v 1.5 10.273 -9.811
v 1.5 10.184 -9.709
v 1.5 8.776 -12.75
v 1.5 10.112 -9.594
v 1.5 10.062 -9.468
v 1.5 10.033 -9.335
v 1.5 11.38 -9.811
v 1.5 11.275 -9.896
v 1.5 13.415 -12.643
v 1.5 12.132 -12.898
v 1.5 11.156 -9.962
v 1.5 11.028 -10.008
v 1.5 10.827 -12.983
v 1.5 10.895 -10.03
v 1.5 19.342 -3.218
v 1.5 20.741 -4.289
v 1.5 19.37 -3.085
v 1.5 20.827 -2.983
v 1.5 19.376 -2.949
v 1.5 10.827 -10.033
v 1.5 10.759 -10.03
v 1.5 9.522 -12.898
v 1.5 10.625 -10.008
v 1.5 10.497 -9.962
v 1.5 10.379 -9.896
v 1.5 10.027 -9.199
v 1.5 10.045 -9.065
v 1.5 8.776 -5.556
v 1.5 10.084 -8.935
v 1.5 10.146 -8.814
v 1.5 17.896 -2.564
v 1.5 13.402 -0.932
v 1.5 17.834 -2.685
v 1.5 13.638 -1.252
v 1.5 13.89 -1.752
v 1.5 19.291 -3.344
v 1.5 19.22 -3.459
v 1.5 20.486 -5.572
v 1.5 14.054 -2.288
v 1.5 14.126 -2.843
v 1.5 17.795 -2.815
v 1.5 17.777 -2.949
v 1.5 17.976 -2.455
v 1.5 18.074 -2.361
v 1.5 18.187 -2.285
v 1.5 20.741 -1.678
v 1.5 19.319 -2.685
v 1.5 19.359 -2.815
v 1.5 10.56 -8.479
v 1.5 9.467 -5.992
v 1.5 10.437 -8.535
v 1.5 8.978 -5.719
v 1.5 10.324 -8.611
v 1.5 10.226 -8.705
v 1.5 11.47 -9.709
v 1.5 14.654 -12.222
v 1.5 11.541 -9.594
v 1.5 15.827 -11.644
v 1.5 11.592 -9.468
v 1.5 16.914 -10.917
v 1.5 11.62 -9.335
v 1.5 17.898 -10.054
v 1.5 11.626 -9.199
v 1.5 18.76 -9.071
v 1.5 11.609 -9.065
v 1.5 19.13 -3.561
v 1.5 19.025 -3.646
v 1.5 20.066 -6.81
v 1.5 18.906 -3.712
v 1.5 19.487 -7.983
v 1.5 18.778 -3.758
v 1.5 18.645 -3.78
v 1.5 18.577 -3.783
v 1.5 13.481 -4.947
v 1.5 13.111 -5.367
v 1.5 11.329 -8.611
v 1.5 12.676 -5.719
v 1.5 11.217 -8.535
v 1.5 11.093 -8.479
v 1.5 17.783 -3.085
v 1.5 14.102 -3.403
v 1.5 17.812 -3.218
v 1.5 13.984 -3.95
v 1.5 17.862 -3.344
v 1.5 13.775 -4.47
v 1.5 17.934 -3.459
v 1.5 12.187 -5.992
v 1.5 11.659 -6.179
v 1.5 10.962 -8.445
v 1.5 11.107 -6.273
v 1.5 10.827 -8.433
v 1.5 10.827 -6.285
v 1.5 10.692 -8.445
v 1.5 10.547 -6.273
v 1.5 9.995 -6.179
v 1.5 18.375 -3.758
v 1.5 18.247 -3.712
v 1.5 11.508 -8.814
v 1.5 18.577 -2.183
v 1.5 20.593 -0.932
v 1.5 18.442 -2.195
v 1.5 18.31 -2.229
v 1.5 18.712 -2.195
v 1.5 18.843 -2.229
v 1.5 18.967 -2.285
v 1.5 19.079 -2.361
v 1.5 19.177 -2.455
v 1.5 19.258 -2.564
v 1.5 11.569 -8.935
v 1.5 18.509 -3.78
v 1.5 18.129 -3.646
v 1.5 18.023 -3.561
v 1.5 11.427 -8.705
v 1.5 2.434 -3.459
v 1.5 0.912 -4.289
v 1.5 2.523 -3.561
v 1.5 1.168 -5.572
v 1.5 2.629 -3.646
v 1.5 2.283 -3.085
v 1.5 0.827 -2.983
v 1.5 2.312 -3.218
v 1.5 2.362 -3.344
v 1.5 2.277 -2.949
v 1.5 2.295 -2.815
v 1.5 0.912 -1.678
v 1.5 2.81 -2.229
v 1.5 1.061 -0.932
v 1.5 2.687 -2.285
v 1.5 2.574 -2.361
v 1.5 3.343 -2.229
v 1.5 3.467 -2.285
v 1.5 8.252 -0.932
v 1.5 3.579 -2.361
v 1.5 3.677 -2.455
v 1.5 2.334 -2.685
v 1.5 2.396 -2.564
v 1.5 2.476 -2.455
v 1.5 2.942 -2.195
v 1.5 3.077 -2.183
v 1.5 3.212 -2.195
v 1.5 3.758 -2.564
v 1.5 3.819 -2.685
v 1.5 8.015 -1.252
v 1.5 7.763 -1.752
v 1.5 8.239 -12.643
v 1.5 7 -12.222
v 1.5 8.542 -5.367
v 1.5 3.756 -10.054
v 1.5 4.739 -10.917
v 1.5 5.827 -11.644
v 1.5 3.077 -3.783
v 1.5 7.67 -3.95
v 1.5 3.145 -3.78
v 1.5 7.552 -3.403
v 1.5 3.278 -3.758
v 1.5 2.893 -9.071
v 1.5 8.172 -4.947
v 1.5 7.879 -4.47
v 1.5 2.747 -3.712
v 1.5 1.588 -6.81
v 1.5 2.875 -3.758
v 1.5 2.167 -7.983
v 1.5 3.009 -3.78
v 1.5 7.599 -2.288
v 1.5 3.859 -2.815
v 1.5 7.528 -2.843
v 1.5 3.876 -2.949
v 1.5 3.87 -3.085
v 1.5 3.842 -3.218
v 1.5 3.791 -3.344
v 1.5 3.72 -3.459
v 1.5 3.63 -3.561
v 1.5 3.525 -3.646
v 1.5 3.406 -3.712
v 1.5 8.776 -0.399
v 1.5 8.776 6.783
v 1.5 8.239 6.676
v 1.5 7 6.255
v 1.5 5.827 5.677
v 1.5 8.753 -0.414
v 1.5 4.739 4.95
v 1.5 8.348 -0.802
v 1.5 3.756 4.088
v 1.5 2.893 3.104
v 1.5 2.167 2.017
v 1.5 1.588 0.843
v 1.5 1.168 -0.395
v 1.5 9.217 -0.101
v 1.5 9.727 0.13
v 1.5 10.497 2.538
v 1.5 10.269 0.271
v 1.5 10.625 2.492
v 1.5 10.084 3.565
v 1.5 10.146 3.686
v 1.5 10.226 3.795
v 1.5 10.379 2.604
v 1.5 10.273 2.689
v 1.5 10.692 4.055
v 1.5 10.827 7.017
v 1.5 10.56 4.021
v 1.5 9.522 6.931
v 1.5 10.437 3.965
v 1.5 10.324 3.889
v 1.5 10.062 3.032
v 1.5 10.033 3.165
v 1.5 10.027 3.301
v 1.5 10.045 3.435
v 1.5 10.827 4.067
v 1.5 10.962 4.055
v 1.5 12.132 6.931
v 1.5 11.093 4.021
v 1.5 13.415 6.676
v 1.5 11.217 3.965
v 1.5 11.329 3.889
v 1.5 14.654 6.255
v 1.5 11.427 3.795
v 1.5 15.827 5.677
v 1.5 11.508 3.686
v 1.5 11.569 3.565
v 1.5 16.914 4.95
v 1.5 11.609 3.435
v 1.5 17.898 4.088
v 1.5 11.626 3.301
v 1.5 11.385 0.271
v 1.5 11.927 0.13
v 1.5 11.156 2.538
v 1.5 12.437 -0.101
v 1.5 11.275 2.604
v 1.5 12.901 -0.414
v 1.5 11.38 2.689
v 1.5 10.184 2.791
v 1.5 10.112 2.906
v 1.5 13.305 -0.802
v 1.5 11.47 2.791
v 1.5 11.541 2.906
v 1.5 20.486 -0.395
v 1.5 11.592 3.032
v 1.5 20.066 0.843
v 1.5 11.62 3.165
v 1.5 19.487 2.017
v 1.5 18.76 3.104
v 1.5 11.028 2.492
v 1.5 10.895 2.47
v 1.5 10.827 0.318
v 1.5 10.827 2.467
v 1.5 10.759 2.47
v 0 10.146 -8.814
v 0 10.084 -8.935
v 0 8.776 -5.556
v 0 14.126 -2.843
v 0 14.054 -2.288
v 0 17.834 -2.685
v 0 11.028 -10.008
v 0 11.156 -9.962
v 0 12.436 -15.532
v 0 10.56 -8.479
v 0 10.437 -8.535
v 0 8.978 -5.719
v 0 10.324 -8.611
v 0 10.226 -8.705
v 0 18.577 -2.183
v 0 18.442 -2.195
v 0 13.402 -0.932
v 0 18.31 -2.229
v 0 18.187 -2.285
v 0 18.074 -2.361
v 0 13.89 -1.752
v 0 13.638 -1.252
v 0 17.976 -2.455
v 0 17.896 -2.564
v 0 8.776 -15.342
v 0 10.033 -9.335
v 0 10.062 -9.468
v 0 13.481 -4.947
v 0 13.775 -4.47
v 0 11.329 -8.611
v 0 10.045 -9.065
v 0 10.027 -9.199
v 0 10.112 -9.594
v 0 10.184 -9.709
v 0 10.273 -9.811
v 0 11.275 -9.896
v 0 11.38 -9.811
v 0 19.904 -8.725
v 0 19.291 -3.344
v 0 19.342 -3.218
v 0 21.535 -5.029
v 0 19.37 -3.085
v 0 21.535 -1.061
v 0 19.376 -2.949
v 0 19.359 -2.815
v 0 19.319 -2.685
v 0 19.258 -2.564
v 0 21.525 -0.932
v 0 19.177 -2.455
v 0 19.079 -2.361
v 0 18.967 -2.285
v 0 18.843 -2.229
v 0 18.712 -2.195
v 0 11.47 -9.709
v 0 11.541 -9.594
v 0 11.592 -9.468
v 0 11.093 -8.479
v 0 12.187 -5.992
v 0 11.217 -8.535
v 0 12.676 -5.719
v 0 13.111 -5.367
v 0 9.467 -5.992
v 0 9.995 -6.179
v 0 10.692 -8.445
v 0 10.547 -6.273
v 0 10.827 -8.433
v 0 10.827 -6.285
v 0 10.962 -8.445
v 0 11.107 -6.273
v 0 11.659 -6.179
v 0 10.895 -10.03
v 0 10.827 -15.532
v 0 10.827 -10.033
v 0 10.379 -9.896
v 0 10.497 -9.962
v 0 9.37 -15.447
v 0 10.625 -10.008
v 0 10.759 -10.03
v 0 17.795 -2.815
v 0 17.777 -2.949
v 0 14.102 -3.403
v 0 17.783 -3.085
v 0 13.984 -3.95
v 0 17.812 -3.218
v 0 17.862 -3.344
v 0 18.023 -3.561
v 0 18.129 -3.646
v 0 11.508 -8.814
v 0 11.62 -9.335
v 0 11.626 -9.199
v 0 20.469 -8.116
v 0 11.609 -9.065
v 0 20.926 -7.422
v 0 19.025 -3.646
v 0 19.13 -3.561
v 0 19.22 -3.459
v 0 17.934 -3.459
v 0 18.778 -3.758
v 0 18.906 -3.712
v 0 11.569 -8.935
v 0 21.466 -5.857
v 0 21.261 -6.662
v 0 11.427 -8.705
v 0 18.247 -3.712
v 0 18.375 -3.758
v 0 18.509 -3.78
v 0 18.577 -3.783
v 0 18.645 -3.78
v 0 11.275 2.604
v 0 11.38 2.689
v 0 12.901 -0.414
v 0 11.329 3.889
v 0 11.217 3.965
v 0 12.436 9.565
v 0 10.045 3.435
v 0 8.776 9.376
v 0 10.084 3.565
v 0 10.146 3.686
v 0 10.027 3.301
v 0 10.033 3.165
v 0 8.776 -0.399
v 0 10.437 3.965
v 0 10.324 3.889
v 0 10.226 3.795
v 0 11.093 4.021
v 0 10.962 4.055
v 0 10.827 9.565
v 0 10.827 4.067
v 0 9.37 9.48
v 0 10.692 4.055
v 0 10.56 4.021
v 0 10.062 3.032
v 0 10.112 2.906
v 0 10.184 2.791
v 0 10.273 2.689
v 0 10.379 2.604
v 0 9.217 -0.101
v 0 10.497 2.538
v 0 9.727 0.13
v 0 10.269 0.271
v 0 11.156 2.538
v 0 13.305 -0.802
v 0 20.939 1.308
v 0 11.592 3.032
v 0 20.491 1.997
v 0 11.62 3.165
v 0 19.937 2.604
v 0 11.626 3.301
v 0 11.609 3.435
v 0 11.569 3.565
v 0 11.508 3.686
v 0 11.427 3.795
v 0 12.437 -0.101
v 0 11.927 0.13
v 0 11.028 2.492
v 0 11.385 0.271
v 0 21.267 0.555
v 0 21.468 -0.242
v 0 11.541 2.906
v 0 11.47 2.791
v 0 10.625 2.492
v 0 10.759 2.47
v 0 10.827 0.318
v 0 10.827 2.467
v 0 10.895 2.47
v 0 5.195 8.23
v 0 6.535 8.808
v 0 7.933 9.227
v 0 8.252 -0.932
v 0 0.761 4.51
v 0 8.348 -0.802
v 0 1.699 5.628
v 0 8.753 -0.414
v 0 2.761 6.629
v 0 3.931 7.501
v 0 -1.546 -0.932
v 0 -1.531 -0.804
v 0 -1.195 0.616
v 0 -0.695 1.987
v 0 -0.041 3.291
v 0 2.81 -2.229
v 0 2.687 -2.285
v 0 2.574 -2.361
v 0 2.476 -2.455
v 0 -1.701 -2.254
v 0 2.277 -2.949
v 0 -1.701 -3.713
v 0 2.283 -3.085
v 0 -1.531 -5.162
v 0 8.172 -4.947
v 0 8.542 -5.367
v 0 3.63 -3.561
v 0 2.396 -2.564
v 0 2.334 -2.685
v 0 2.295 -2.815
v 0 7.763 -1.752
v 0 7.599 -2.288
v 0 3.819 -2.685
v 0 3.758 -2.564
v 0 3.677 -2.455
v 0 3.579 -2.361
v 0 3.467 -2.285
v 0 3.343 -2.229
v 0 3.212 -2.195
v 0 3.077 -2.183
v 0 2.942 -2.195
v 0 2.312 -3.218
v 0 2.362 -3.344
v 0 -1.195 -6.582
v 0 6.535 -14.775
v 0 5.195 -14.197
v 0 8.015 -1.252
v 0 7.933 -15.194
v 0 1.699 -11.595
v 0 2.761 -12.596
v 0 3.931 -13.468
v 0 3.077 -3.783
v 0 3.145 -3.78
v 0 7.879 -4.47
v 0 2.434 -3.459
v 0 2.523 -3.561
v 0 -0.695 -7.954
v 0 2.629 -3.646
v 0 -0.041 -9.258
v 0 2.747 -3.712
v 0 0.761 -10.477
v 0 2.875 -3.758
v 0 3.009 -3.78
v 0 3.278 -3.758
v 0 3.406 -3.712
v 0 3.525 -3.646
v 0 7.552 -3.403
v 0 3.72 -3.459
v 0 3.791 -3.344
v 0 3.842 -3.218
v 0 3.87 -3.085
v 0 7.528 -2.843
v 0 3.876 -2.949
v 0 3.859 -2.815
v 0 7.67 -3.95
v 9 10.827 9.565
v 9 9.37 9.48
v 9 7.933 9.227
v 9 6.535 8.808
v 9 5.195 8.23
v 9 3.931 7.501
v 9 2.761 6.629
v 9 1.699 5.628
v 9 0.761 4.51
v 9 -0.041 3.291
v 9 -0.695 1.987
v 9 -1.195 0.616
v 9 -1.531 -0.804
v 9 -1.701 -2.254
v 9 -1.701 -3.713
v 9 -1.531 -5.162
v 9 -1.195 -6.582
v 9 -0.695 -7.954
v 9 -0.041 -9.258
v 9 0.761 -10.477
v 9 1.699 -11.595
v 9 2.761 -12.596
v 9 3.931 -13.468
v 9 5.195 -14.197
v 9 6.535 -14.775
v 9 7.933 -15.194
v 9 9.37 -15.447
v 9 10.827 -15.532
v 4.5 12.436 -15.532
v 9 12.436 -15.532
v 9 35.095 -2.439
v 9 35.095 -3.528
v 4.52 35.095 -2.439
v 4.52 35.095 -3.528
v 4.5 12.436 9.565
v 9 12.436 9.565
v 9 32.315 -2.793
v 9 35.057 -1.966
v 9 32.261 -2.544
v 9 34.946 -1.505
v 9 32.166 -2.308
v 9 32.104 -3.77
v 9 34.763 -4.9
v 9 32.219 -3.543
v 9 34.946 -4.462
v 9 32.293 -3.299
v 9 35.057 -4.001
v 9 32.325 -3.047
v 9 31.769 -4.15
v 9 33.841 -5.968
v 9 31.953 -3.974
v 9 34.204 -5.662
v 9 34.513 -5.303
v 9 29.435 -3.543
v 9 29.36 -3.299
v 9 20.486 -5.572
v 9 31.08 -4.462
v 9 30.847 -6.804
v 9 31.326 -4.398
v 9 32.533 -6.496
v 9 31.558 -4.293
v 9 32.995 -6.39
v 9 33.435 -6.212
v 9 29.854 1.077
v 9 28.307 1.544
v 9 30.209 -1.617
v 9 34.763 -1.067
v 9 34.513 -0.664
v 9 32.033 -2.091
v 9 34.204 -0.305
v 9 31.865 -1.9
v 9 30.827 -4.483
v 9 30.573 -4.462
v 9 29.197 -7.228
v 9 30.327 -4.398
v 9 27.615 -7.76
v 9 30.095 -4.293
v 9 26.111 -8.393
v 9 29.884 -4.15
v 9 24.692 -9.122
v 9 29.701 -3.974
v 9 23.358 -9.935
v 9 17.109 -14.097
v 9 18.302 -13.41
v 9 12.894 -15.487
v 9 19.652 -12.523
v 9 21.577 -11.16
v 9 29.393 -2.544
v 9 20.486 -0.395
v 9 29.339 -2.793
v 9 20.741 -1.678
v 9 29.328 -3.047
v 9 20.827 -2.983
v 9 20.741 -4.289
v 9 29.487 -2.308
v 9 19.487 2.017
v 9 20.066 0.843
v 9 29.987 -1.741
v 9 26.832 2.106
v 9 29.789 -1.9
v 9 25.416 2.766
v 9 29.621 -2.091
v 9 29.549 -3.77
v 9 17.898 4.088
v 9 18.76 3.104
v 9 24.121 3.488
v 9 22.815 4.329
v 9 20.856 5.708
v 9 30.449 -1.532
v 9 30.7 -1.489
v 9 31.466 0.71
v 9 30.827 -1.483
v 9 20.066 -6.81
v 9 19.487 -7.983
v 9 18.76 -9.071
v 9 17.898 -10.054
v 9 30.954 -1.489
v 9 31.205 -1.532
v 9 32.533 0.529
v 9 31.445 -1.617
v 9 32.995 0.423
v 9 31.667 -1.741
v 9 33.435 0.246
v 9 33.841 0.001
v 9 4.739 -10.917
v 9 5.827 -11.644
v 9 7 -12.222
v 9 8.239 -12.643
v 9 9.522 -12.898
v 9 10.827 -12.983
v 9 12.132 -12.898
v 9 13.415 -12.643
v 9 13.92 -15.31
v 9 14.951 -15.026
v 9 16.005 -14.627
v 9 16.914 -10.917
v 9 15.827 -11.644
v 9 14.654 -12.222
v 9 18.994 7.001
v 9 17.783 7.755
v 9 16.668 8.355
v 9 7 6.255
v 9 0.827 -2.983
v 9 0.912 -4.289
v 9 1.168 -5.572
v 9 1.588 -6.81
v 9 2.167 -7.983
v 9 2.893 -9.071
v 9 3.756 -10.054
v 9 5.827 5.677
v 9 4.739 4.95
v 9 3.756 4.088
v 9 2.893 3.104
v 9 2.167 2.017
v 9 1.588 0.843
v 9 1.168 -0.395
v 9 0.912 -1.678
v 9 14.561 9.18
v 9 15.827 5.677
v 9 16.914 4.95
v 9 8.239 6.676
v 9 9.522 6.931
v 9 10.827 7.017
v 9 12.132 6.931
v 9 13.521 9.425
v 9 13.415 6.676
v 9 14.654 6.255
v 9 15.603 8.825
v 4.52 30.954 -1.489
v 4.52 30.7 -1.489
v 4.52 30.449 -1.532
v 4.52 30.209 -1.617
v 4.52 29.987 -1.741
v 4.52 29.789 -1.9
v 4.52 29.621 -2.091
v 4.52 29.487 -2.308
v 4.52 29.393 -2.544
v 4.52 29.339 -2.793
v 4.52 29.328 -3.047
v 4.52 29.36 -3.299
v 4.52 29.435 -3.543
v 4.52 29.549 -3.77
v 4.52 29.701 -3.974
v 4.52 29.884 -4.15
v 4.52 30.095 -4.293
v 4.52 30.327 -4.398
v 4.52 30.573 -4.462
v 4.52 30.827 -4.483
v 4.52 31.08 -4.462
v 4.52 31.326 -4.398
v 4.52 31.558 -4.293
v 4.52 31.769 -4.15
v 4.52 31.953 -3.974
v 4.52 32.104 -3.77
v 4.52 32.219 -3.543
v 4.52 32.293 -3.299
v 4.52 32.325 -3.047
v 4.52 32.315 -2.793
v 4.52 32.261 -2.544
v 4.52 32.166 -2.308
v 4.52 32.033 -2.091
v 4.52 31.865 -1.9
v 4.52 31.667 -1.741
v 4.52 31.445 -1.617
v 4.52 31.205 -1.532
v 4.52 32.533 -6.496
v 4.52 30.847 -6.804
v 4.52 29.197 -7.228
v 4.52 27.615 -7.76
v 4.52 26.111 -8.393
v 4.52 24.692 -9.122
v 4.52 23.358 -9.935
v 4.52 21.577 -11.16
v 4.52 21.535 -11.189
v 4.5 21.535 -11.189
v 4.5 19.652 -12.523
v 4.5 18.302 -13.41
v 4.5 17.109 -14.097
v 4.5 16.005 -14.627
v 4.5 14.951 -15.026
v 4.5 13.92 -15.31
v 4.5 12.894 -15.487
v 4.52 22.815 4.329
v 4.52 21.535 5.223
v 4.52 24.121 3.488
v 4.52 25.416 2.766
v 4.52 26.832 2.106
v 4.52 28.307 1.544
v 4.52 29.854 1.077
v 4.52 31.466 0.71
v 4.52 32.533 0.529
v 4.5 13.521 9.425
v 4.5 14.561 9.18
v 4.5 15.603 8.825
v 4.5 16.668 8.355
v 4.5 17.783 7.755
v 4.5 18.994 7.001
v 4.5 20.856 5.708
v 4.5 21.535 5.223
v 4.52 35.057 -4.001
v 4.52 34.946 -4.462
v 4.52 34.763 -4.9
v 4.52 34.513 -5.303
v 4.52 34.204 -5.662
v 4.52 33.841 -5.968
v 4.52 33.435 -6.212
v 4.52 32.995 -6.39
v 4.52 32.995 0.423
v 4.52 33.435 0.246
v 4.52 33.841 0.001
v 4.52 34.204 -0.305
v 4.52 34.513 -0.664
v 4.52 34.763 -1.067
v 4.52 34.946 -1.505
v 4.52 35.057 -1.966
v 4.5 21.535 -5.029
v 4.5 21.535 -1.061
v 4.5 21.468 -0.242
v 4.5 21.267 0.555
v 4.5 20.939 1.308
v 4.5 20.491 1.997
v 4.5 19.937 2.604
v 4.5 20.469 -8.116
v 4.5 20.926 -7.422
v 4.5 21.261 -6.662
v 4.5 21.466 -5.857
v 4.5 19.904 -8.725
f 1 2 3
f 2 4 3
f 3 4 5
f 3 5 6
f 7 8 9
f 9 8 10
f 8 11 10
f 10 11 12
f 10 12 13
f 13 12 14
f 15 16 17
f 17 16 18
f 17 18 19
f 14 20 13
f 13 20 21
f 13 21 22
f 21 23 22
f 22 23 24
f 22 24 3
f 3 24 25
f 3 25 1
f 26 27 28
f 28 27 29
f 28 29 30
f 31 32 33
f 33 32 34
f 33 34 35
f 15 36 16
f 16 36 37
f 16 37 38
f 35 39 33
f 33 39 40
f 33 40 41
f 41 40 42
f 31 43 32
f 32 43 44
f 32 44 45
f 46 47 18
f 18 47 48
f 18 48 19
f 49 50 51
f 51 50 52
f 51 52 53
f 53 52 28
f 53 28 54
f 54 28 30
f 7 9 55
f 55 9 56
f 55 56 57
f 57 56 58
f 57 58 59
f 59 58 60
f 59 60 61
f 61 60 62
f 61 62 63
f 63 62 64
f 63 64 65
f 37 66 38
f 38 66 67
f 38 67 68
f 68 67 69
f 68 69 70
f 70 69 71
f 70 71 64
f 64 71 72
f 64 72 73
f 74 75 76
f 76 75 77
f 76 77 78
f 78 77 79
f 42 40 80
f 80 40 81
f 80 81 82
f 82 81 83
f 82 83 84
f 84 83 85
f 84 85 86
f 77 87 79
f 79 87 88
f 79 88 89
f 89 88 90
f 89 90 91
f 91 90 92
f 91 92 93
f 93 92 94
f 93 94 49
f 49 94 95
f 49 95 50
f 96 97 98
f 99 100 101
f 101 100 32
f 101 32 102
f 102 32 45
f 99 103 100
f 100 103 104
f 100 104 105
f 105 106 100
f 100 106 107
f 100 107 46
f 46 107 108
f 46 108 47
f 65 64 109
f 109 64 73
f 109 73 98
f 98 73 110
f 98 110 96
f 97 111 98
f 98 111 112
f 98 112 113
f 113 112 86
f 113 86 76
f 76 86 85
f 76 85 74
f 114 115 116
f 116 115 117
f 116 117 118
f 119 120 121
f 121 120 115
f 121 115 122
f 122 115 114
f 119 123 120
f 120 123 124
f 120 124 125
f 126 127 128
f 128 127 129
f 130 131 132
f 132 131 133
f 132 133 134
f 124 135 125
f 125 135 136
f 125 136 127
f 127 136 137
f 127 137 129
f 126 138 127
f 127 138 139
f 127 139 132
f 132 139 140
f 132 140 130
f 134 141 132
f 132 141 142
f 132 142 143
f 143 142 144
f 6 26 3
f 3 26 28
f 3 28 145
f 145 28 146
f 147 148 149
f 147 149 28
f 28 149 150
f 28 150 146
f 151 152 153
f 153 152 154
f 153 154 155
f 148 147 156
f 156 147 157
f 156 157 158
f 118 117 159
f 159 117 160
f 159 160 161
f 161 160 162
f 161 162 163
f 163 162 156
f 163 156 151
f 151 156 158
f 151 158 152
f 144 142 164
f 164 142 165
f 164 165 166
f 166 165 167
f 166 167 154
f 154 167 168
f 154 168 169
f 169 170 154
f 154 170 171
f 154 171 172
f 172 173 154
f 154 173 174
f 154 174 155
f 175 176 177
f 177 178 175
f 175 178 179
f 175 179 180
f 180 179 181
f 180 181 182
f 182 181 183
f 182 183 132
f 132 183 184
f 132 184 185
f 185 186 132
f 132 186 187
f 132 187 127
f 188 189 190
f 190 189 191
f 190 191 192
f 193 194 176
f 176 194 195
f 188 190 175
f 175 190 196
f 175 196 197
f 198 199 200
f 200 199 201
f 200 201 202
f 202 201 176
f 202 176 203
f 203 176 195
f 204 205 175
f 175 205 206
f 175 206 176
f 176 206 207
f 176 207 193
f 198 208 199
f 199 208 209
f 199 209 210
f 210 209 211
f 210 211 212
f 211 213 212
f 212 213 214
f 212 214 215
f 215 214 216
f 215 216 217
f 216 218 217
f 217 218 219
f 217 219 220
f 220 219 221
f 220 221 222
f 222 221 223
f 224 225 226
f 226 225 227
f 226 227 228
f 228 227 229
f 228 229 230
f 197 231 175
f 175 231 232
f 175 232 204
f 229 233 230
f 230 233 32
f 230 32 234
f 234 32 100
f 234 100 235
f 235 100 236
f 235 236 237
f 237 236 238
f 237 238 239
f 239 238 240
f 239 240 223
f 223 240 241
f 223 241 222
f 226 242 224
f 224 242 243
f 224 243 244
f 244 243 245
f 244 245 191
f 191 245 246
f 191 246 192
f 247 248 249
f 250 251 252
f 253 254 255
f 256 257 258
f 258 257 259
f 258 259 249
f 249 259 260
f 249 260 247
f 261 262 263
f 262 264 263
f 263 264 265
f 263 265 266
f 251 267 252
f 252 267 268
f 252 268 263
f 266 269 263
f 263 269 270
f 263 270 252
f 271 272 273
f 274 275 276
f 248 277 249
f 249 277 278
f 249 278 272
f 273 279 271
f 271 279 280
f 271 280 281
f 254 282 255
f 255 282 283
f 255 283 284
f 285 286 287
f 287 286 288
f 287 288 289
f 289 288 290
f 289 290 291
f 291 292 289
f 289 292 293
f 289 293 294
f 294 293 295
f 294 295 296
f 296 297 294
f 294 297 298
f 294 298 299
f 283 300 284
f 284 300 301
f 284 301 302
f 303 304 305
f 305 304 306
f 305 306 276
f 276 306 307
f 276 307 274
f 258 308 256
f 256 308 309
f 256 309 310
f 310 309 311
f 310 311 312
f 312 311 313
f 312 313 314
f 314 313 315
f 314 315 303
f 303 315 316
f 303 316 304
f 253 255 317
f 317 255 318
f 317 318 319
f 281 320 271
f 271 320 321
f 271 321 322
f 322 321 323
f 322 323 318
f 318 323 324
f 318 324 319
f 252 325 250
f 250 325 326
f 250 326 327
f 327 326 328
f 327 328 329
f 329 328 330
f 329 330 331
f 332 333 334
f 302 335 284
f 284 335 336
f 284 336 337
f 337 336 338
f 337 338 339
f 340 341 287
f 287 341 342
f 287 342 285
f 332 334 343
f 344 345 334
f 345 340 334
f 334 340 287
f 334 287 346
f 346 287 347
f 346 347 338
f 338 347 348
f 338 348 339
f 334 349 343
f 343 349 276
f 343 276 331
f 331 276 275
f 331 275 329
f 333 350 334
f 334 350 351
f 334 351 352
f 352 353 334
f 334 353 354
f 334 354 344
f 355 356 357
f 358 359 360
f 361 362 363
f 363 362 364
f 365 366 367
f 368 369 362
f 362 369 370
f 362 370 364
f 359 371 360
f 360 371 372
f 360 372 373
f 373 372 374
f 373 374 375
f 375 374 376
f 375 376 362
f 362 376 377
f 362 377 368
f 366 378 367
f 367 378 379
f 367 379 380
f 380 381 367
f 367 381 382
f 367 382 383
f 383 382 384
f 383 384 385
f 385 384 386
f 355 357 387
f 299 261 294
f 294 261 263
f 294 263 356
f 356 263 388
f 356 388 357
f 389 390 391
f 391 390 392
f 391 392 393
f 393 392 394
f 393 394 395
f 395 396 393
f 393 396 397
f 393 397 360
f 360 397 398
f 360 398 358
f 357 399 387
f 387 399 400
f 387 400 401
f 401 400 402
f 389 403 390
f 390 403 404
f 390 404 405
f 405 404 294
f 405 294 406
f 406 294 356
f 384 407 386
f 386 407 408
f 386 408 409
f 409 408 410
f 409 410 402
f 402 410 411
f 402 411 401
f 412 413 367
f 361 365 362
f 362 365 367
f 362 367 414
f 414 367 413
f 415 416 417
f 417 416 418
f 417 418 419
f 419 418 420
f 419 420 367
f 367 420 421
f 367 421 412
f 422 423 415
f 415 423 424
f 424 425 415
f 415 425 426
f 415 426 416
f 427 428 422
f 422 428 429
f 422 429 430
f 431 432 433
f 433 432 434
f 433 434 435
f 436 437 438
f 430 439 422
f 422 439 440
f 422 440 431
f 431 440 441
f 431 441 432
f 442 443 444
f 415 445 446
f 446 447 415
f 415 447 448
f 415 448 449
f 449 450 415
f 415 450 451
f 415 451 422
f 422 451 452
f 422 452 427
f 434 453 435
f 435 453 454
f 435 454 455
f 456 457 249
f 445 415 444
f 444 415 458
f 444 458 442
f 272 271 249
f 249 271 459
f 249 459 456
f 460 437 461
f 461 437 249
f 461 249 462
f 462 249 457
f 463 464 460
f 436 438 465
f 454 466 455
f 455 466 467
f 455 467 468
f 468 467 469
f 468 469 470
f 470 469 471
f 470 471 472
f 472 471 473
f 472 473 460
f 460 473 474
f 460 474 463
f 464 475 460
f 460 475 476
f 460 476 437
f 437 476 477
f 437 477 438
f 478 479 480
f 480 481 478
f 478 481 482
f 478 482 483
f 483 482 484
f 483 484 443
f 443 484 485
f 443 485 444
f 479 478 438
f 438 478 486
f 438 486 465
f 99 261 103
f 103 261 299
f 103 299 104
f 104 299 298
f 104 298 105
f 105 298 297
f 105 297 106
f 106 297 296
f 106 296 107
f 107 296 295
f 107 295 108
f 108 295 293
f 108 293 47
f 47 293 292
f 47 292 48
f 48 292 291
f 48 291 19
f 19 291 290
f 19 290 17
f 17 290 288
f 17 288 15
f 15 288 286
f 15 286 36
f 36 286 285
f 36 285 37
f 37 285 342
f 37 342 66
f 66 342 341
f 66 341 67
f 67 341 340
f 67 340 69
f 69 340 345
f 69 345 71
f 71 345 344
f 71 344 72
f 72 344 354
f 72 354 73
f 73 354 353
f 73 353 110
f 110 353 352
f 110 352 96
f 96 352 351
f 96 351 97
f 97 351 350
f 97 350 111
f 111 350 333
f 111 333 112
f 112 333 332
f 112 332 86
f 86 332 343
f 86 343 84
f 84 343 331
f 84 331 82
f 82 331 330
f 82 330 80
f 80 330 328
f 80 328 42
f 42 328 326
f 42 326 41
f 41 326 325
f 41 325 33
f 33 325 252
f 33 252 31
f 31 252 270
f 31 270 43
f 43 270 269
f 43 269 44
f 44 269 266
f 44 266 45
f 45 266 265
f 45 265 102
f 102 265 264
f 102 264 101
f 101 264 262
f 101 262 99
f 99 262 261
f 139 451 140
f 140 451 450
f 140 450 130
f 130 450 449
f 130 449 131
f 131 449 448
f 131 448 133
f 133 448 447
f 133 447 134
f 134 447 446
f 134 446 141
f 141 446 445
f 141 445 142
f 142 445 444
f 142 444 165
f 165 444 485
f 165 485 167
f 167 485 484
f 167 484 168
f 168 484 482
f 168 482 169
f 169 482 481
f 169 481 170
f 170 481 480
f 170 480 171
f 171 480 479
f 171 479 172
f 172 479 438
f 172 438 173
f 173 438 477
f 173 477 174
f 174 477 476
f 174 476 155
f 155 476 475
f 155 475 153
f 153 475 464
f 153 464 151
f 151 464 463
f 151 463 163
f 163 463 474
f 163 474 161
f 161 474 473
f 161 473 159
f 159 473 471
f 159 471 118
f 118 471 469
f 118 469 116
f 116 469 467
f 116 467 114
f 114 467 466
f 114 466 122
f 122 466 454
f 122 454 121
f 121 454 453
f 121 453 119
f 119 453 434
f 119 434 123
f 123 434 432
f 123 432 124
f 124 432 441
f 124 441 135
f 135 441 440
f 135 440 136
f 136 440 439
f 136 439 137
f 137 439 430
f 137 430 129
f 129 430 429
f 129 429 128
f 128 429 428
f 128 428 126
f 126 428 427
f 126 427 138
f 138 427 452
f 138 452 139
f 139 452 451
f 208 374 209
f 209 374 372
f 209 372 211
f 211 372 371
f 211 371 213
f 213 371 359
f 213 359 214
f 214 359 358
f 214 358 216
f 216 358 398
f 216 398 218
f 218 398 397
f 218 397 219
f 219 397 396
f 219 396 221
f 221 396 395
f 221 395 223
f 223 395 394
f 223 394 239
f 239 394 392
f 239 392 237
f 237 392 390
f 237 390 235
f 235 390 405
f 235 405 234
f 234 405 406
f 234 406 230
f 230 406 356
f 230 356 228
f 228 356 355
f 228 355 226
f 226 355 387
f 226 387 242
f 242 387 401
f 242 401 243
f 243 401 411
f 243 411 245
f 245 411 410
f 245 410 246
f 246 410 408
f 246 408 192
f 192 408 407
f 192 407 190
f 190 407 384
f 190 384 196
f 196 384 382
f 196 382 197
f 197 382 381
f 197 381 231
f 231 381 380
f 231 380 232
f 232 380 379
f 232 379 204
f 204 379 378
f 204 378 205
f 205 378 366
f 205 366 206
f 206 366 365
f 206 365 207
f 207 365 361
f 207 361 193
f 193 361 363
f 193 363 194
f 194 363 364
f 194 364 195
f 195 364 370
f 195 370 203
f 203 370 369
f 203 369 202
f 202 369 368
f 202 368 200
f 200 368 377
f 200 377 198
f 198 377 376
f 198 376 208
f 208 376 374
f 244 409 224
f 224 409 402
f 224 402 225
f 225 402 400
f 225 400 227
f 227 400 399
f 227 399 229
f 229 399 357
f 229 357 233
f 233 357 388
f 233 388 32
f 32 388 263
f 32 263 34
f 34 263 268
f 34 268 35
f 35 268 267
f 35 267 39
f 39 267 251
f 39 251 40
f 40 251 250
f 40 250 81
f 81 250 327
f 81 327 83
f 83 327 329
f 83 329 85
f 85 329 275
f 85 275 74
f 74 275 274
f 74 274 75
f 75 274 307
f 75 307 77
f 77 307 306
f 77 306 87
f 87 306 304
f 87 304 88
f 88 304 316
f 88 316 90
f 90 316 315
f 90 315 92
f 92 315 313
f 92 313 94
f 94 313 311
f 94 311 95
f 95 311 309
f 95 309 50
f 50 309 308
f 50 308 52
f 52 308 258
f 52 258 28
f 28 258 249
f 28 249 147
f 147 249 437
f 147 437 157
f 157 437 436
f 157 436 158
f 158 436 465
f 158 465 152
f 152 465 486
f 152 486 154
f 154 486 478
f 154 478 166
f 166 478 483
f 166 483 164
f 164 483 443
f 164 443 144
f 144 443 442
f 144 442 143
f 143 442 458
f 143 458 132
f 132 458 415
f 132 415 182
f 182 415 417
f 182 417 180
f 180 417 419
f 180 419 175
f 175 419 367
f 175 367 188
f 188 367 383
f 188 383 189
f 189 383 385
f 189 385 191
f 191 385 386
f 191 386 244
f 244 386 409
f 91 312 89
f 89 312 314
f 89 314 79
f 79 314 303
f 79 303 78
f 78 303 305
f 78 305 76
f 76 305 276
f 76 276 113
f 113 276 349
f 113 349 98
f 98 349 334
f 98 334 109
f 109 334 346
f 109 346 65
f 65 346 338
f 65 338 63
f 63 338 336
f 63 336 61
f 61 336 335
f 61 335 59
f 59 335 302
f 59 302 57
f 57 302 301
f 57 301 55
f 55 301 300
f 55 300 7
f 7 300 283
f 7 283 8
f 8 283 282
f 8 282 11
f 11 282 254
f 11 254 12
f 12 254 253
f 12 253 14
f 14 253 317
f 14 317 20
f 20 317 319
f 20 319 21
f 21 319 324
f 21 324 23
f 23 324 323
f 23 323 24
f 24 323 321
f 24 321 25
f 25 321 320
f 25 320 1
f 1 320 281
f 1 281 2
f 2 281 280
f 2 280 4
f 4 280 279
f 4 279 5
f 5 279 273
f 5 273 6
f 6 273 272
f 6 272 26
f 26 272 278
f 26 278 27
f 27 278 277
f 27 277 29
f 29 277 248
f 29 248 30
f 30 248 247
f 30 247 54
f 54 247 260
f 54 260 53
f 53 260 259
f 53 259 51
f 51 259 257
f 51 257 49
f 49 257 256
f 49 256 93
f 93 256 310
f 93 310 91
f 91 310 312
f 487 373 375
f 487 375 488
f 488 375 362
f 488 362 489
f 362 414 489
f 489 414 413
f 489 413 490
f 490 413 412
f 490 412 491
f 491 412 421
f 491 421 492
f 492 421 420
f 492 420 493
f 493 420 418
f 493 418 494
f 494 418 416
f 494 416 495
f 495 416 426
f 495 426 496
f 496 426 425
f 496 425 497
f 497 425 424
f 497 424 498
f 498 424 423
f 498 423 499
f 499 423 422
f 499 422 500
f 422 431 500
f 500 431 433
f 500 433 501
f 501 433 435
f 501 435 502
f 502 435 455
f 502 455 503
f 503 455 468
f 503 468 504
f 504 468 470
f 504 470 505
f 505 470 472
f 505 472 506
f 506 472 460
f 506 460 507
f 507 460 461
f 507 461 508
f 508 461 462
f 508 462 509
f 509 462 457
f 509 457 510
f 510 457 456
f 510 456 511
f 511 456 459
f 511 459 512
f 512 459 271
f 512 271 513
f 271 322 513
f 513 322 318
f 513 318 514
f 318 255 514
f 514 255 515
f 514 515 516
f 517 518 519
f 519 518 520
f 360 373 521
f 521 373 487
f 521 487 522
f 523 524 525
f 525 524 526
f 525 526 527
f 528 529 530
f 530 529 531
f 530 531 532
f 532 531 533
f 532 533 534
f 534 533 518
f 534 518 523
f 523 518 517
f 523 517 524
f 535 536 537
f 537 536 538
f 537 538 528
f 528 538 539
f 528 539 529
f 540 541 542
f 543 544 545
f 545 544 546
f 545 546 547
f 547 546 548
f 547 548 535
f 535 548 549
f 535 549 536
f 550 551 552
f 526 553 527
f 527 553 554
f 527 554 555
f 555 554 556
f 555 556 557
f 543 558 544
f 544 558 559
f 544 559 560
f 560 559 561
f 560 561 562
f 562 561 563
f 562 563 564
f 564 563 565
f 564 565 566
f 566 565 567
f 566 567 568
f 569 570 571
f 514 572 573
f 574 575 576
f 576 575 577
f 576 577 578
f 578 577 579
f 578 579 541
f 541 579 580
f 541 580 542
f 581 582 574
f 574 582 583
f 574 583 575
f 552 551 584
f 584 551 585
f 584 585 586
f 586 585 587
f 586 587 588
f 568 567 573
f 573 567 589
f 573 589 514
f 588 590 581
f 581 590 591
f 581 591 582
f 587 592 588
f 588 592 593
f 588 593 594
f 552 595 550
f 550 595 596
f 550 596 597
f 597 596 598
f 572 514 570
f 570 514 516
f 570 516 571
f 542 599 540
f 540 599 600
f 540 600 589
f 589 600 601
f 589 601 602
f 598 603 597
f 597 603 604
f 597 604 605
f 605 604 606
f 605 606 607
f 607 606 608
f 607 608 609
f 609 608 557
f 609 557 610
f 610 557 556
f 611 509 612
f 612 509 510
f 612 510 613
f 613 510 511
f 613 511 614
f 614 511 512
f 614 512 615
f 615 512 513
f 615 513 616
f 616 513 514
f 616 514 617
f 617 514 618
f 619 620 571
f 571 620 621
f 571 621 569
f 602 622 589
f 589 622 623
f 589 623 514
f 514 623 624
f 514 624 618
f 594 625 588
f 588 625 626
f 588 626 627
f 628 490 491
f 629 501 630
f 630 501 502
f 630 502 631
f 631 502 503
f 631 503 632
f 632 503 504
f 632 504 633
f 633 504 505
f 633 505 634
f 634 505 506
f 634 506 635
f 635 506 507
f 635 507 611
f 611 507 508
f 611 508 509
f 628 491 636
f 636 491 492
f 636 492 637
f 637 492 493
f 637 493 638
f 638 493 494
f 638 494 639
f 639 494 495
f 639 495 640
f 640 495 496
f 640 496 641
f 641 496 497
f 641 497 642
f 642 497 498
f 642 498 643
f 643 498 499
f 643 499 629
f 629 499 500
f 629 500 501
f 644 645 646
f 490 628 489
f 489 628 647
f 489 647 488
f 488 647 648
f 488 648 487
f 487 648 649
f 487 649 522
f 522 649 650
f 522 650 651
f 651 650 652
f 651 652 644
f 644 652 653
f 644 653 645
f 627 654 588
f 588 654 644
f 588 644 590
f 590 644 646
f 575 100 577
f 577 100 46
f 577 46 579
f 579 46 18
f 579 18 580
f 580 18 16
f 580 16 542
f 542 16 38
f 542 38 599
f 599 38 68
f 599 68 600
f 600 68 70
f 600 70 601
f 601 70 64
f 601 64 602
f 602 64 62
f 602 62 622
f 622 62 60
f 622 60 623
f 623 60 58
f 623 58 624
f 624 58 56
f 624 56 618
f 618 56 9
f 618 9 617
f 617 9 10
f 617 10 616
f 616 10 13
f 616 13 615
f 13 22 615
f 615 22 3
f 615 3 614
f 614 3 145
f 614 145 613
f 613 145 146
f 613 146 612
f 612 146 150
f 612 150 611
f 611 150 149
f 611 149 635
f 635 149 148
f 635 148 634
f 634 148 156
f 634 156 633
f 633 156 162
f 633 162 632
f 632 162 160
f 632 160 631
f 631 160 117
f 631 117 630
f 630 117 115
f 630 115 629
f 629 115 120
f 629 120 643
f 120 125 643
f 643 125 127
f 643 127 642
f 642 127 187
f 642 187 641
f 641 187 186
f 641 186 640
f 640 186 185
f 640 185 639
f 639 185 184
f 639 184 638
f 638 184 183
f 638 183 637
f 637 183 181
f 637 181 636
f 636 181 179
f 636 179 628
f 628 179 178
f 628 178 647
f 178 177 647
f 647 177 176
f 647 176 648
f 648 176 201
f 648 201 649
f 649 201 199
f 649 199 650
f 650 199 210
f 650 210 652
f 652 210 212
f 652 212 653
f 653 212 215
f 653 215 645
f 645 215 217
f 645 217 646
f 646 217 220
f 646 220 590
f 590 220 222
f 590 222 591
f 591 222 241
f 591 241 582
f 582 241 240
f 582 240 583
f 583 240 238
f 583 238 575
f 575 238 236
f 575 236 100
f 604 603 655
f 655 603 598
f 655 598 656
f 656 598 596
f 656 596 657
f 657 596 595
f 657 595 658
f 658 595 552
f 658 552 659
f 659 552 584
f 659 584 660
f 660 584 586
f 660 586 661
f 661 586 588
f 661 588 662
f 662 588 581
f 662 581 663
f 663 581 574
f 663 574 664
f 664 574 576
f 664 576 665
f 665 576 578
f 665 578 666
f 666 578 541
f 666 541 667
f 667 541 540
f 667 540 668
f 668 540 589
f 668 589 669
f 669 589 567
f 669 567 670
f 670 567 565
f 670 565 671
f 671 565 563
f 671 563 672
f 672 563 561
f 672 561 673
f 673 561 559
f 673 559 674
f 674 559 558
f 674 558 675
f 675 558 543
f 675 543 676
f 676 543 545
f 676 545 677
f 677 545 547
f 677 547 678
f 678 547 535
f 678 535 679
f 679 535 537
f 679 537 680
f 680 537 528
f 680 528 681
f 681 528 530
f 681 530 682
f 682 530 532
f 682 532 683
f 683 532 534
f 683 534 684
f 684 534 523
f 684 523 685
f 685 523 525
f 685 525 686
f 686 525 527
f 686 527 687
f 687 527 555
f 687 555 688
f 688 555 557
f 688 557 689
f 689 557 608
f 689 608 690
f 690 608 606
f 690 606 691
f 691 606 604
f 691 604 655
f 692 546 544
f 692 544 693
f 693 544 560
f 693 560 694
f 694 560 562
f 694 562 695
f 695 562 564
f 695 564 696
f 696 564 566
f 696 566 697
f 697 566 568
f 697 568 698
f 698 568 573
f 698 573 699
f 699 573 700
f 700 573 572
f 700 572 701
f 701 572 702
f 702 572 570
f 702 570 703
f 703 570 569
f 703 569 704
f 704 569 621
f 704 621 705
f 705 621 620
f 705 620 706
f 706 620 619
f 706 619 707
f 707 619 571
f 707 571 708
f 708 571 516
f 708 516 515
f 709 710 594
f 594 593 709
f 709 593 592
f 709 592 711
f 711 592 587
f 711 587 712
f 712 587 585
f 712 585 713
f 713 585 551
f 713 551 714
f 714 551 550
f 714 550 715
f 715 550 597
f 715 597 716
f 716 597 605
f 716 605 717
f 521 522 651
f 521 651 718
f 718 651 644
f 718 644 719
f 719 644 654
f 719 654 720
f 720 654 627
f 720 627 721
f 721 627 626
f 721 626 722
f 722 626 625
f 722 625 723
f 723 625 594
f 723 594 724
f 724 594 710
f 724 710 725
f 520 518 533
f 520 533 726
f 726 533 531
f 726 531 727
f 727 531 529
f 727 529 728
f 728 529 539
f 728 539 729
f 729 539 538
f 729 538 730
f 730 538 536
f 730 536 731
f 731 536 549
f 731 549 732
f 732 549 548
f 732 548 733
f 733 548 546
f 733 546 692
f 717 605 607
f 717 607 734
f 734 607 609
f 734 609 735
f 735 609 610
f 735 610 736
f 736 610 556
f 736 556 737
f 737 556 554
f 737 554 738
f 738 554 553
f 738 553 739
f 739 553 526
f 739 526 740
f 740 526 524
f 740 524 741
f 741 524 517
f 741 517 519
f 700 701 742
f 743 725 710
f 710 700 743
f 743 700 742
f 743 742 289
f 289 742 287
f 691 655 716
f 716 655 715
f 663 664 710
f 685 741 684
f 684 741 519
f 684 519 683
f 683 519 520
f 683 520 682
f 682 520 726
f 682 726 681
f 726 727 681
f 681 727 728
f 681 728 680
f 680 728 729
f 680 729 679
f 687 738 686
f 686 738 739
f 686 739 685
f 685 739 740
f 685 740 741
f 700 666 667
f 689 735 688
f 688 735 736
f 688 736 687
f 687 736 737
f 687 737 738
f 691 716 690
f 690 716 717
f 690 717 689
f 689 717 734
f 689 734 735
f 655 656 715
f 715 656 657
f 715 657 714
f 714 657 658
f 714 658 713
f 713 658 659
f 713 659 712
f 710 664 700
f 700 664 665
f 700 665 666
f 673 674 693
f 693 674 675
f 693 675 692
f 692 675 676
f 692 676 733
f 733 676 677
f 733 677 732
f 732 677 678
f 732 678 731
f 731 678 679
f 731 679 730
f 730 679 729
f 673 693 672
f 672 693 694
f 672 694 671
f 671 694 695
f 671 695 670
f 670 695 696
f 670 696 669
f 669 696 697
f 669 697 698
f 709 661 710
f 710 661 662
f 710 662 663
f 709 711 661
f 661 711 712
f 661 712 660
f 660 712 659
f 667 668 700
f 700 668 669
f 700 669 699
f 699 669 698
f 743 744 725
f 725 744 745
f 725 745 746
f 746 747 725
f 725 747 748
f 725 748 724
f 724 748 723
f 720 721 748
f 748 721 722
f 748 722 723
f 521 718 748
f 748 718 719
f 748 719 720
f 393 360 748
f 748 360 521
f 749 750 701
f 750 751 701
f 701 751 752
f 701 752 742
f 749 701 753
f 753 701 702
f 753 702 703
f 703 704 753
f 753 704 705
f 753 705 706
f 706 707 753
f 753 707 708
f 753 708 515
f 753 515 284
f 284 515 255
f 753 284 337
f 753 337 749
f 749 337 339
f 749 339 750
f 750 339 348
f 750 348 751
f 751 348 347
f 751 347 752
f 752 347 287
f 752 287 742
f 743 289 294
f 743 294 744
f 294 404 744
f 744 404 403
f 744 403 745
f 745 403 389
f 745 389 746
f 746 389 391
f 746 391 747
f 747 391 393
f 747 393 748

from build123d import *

# Parameters (mm, degrees)
SKETCH1_R               = 10
SKETCH1_R_2             = 0.8
SKETCH1_R_3             = 3.301767793
BOSS_EXTRUDE1_DEPTH     = 1.5
SKETCH2_R               = 10
BOSS_EXTRUDE2_DEPTH     = 9
SKETCH3_R               = 1.5
CUT_EXTRUDE1_DEPTH      = 1
CUT_EXTRUDE1_DEPTH_BACK = 10
FILLET1_R               = 3
CUT_EXTRUDE2_DEPTH      = 10.565166147
CUT_EXTRUDE2_DEPTH_BACK = 16.531923841
CUT_EXTRUDE4_DEPTH      = 4.5
FILLET4_R               = 5


with BuildPart() as part:
    # Sketch1 → Boss-Extrude1 (new body)
    with BuildSketch(Plane(origin=(0, 0, 0), x_dir=(0, 0, -1), z_dir=(1, 0, 0))):
        with Locations((2.983378847, 10.826778074)):
            Circle(SKETCH1_R)
        with Locations((2.983378847, 18.576778074)):
            Circle(SKETCH1_R_2, mode=Mode.SUBTRACT)
        with Locations((2.983378847, 3.076778074)):
            Circle(SKETCH1_R_2, mode=Mode.SUBTRACT)
        with Locations((-3.266621153, 10.826778074)):
            Circle(SKETCH1_R_2, mode=Mode.SUBTRACT)
        with Locations((9.233378847, 10.826778074)):
            Circle(SKETCH1_R_2, mode=Mode.SUBTRACT)
        with Locations((2.983378847, 10.826778074)):
            Circle(SKETCH1_R_3, mode=Mode.SUBTRACT)
    extrude(amount=BOSS_EXTRUDE1_DEPTH)

    # Sketch2 → Boss-Extrude2 (add)
    with BuildSketch(Plane.ZY):
        with BuildLine():
            Line((-15.531923741, 35.094698666), (9.565166047, 35.094698666))
            Line((9.565166047, 35.094698666), (9.565166047, 10.826778074))
            ThreePointArc((9.565166047, 10.826778074), (-2.983378847, -1.721766821), (-15.531923741, 10.826778074))
            Line((-15.531923741, 10.826778074), (-15.531923741, 35.094698666))
        make_face()
        with Locations((-2.983378847, 10.826778074)):
            Circle(SKETCH2_R, mode=Mode.SUBTRACT)
    extrude(amount=-BOSS_EXTRUDE2_DEPTH)

    # Sketch3 → Cut-Extrude1 (cut, two sides)
    with BuildSketch(Plane(origin=(9, 0, 0), x_dir=(0, 0, -1), z_dir=(1, 0, 0))) as cut_extrude1_sk:
        with Locations((2.983378847, 30.826778074)):
            Circle(SKETCH3_R)
        with BuildLine():
            Line((-0.254346927, 36.150412664), (-0.254346927, 97.572569437))
            Line((-0.254346927, 97.572569437), (-16.389018159, 97.572569437))
            Line((-16.389018159, 97.572569437), (-16.389018159, 8.14109285))
            Line((-16.389018159, 8.14109285), (-9.565166047, 10.826778074))
            add(Edge.make_bspline(
                [(-9.565166047, 10.826778074), (-9.996776932, 16.621947073), (-2.416923511, 22.902398079), (-0.279431234, 32.151841163), (-0.254346927, 36.150412664)],
                knots=[0, 0, 0, 0, 0.563274164, 1, 1, 1, 1], degree=3))
        make_face()
        with BuildLine():
            Line((22.355775853, 8.14109285), (15.531923741, 10.826778074))
            add(Edge.make_bspline(
                [(15.531923741, 10.826778074), (15.963534626, 16.621947073), (8.383681205, 22.902398079), (6.246188928, 32.151841163), (6.221104621, 36.150412664)],
                knots=[0, 0, 0, 0, 0.563274164, 1, 1, 1, 1], degree=3))
            Line((6.221104621, 36.150412664), (6.221104621, 97.572569437))
            Line((6.221104621, 97.572569437), (22.355775853, 97.572569437))
            Line((22.355775853, 97.572569437), (22.355775853, 8.14109285))
        make_face()
    extrude(amount=CUT_EXTRUDE1_DEPTH, mode=Mode.SUBTRACT)
    extrude(cut_extrude1_sk.sketch, amount=-CUT_EXTRUDE1_DEPTH_BACK, mode=Mode.SUBTRACT)

    # Fillet1
    fillet1_edges = [part.edges().sort_by_distance(p)[0] for p in [
        (4.5, 35.094698666, -6.248898777),
        (4.5, 35.094698666, 0.282141083),
    ]]
    fillet(fillet1_edges, radius=FILLET1_R)

    # Sketch5 → Cut-Extrude2 (cut, two sides)
    with BuildSketch(Plane.XY) as cut_extrude2_sk:
        Polygon((4.519735145, 37.354194786), (-3.918381593, 39.378706192), (-3.918381593, 21.53545024), (4.519735145, 21.53545024), align=None)
    extrude(amount=CUT_EXTRUDE2_DEPTH, mode=Mode.SUBTRACT)
    extrude(cut_extrude2_sk.sketch, amount=-CUT_EXTRUDE2_DEPTH_BACK, mode=Mode.SUBTRACT)

    # Sketch6 → Cut-Extrude4 (cut)
    with BuildSketch(Plane.ZY):
        Polygon((-15.531923741, 12.43637897), (-7.23722927, 21.53545024), (-16.045201911, 21.53545024), align=None)
        Polygon((9.565166047, 12.43637897), (1.120335679, 21.53545024), (9.021007351, 21.981126747), (10.387134826, 13.199246596), align=None)
    extrude(amount=-CUT_EXTRUDE4_DEPTH, mode=Mode.SUBTRACT)

    # Fillet4
    fillet4_edges = [part.edges().sort_by_distance(p)[0] for p in [
        (2.25, 21.53545024, -7.23722927),
        (2.25, 21.53545024, 1.120335679),
    ]]
    fillet(fillet4_edges, radius=FILLET4_R)


solid = part.part
